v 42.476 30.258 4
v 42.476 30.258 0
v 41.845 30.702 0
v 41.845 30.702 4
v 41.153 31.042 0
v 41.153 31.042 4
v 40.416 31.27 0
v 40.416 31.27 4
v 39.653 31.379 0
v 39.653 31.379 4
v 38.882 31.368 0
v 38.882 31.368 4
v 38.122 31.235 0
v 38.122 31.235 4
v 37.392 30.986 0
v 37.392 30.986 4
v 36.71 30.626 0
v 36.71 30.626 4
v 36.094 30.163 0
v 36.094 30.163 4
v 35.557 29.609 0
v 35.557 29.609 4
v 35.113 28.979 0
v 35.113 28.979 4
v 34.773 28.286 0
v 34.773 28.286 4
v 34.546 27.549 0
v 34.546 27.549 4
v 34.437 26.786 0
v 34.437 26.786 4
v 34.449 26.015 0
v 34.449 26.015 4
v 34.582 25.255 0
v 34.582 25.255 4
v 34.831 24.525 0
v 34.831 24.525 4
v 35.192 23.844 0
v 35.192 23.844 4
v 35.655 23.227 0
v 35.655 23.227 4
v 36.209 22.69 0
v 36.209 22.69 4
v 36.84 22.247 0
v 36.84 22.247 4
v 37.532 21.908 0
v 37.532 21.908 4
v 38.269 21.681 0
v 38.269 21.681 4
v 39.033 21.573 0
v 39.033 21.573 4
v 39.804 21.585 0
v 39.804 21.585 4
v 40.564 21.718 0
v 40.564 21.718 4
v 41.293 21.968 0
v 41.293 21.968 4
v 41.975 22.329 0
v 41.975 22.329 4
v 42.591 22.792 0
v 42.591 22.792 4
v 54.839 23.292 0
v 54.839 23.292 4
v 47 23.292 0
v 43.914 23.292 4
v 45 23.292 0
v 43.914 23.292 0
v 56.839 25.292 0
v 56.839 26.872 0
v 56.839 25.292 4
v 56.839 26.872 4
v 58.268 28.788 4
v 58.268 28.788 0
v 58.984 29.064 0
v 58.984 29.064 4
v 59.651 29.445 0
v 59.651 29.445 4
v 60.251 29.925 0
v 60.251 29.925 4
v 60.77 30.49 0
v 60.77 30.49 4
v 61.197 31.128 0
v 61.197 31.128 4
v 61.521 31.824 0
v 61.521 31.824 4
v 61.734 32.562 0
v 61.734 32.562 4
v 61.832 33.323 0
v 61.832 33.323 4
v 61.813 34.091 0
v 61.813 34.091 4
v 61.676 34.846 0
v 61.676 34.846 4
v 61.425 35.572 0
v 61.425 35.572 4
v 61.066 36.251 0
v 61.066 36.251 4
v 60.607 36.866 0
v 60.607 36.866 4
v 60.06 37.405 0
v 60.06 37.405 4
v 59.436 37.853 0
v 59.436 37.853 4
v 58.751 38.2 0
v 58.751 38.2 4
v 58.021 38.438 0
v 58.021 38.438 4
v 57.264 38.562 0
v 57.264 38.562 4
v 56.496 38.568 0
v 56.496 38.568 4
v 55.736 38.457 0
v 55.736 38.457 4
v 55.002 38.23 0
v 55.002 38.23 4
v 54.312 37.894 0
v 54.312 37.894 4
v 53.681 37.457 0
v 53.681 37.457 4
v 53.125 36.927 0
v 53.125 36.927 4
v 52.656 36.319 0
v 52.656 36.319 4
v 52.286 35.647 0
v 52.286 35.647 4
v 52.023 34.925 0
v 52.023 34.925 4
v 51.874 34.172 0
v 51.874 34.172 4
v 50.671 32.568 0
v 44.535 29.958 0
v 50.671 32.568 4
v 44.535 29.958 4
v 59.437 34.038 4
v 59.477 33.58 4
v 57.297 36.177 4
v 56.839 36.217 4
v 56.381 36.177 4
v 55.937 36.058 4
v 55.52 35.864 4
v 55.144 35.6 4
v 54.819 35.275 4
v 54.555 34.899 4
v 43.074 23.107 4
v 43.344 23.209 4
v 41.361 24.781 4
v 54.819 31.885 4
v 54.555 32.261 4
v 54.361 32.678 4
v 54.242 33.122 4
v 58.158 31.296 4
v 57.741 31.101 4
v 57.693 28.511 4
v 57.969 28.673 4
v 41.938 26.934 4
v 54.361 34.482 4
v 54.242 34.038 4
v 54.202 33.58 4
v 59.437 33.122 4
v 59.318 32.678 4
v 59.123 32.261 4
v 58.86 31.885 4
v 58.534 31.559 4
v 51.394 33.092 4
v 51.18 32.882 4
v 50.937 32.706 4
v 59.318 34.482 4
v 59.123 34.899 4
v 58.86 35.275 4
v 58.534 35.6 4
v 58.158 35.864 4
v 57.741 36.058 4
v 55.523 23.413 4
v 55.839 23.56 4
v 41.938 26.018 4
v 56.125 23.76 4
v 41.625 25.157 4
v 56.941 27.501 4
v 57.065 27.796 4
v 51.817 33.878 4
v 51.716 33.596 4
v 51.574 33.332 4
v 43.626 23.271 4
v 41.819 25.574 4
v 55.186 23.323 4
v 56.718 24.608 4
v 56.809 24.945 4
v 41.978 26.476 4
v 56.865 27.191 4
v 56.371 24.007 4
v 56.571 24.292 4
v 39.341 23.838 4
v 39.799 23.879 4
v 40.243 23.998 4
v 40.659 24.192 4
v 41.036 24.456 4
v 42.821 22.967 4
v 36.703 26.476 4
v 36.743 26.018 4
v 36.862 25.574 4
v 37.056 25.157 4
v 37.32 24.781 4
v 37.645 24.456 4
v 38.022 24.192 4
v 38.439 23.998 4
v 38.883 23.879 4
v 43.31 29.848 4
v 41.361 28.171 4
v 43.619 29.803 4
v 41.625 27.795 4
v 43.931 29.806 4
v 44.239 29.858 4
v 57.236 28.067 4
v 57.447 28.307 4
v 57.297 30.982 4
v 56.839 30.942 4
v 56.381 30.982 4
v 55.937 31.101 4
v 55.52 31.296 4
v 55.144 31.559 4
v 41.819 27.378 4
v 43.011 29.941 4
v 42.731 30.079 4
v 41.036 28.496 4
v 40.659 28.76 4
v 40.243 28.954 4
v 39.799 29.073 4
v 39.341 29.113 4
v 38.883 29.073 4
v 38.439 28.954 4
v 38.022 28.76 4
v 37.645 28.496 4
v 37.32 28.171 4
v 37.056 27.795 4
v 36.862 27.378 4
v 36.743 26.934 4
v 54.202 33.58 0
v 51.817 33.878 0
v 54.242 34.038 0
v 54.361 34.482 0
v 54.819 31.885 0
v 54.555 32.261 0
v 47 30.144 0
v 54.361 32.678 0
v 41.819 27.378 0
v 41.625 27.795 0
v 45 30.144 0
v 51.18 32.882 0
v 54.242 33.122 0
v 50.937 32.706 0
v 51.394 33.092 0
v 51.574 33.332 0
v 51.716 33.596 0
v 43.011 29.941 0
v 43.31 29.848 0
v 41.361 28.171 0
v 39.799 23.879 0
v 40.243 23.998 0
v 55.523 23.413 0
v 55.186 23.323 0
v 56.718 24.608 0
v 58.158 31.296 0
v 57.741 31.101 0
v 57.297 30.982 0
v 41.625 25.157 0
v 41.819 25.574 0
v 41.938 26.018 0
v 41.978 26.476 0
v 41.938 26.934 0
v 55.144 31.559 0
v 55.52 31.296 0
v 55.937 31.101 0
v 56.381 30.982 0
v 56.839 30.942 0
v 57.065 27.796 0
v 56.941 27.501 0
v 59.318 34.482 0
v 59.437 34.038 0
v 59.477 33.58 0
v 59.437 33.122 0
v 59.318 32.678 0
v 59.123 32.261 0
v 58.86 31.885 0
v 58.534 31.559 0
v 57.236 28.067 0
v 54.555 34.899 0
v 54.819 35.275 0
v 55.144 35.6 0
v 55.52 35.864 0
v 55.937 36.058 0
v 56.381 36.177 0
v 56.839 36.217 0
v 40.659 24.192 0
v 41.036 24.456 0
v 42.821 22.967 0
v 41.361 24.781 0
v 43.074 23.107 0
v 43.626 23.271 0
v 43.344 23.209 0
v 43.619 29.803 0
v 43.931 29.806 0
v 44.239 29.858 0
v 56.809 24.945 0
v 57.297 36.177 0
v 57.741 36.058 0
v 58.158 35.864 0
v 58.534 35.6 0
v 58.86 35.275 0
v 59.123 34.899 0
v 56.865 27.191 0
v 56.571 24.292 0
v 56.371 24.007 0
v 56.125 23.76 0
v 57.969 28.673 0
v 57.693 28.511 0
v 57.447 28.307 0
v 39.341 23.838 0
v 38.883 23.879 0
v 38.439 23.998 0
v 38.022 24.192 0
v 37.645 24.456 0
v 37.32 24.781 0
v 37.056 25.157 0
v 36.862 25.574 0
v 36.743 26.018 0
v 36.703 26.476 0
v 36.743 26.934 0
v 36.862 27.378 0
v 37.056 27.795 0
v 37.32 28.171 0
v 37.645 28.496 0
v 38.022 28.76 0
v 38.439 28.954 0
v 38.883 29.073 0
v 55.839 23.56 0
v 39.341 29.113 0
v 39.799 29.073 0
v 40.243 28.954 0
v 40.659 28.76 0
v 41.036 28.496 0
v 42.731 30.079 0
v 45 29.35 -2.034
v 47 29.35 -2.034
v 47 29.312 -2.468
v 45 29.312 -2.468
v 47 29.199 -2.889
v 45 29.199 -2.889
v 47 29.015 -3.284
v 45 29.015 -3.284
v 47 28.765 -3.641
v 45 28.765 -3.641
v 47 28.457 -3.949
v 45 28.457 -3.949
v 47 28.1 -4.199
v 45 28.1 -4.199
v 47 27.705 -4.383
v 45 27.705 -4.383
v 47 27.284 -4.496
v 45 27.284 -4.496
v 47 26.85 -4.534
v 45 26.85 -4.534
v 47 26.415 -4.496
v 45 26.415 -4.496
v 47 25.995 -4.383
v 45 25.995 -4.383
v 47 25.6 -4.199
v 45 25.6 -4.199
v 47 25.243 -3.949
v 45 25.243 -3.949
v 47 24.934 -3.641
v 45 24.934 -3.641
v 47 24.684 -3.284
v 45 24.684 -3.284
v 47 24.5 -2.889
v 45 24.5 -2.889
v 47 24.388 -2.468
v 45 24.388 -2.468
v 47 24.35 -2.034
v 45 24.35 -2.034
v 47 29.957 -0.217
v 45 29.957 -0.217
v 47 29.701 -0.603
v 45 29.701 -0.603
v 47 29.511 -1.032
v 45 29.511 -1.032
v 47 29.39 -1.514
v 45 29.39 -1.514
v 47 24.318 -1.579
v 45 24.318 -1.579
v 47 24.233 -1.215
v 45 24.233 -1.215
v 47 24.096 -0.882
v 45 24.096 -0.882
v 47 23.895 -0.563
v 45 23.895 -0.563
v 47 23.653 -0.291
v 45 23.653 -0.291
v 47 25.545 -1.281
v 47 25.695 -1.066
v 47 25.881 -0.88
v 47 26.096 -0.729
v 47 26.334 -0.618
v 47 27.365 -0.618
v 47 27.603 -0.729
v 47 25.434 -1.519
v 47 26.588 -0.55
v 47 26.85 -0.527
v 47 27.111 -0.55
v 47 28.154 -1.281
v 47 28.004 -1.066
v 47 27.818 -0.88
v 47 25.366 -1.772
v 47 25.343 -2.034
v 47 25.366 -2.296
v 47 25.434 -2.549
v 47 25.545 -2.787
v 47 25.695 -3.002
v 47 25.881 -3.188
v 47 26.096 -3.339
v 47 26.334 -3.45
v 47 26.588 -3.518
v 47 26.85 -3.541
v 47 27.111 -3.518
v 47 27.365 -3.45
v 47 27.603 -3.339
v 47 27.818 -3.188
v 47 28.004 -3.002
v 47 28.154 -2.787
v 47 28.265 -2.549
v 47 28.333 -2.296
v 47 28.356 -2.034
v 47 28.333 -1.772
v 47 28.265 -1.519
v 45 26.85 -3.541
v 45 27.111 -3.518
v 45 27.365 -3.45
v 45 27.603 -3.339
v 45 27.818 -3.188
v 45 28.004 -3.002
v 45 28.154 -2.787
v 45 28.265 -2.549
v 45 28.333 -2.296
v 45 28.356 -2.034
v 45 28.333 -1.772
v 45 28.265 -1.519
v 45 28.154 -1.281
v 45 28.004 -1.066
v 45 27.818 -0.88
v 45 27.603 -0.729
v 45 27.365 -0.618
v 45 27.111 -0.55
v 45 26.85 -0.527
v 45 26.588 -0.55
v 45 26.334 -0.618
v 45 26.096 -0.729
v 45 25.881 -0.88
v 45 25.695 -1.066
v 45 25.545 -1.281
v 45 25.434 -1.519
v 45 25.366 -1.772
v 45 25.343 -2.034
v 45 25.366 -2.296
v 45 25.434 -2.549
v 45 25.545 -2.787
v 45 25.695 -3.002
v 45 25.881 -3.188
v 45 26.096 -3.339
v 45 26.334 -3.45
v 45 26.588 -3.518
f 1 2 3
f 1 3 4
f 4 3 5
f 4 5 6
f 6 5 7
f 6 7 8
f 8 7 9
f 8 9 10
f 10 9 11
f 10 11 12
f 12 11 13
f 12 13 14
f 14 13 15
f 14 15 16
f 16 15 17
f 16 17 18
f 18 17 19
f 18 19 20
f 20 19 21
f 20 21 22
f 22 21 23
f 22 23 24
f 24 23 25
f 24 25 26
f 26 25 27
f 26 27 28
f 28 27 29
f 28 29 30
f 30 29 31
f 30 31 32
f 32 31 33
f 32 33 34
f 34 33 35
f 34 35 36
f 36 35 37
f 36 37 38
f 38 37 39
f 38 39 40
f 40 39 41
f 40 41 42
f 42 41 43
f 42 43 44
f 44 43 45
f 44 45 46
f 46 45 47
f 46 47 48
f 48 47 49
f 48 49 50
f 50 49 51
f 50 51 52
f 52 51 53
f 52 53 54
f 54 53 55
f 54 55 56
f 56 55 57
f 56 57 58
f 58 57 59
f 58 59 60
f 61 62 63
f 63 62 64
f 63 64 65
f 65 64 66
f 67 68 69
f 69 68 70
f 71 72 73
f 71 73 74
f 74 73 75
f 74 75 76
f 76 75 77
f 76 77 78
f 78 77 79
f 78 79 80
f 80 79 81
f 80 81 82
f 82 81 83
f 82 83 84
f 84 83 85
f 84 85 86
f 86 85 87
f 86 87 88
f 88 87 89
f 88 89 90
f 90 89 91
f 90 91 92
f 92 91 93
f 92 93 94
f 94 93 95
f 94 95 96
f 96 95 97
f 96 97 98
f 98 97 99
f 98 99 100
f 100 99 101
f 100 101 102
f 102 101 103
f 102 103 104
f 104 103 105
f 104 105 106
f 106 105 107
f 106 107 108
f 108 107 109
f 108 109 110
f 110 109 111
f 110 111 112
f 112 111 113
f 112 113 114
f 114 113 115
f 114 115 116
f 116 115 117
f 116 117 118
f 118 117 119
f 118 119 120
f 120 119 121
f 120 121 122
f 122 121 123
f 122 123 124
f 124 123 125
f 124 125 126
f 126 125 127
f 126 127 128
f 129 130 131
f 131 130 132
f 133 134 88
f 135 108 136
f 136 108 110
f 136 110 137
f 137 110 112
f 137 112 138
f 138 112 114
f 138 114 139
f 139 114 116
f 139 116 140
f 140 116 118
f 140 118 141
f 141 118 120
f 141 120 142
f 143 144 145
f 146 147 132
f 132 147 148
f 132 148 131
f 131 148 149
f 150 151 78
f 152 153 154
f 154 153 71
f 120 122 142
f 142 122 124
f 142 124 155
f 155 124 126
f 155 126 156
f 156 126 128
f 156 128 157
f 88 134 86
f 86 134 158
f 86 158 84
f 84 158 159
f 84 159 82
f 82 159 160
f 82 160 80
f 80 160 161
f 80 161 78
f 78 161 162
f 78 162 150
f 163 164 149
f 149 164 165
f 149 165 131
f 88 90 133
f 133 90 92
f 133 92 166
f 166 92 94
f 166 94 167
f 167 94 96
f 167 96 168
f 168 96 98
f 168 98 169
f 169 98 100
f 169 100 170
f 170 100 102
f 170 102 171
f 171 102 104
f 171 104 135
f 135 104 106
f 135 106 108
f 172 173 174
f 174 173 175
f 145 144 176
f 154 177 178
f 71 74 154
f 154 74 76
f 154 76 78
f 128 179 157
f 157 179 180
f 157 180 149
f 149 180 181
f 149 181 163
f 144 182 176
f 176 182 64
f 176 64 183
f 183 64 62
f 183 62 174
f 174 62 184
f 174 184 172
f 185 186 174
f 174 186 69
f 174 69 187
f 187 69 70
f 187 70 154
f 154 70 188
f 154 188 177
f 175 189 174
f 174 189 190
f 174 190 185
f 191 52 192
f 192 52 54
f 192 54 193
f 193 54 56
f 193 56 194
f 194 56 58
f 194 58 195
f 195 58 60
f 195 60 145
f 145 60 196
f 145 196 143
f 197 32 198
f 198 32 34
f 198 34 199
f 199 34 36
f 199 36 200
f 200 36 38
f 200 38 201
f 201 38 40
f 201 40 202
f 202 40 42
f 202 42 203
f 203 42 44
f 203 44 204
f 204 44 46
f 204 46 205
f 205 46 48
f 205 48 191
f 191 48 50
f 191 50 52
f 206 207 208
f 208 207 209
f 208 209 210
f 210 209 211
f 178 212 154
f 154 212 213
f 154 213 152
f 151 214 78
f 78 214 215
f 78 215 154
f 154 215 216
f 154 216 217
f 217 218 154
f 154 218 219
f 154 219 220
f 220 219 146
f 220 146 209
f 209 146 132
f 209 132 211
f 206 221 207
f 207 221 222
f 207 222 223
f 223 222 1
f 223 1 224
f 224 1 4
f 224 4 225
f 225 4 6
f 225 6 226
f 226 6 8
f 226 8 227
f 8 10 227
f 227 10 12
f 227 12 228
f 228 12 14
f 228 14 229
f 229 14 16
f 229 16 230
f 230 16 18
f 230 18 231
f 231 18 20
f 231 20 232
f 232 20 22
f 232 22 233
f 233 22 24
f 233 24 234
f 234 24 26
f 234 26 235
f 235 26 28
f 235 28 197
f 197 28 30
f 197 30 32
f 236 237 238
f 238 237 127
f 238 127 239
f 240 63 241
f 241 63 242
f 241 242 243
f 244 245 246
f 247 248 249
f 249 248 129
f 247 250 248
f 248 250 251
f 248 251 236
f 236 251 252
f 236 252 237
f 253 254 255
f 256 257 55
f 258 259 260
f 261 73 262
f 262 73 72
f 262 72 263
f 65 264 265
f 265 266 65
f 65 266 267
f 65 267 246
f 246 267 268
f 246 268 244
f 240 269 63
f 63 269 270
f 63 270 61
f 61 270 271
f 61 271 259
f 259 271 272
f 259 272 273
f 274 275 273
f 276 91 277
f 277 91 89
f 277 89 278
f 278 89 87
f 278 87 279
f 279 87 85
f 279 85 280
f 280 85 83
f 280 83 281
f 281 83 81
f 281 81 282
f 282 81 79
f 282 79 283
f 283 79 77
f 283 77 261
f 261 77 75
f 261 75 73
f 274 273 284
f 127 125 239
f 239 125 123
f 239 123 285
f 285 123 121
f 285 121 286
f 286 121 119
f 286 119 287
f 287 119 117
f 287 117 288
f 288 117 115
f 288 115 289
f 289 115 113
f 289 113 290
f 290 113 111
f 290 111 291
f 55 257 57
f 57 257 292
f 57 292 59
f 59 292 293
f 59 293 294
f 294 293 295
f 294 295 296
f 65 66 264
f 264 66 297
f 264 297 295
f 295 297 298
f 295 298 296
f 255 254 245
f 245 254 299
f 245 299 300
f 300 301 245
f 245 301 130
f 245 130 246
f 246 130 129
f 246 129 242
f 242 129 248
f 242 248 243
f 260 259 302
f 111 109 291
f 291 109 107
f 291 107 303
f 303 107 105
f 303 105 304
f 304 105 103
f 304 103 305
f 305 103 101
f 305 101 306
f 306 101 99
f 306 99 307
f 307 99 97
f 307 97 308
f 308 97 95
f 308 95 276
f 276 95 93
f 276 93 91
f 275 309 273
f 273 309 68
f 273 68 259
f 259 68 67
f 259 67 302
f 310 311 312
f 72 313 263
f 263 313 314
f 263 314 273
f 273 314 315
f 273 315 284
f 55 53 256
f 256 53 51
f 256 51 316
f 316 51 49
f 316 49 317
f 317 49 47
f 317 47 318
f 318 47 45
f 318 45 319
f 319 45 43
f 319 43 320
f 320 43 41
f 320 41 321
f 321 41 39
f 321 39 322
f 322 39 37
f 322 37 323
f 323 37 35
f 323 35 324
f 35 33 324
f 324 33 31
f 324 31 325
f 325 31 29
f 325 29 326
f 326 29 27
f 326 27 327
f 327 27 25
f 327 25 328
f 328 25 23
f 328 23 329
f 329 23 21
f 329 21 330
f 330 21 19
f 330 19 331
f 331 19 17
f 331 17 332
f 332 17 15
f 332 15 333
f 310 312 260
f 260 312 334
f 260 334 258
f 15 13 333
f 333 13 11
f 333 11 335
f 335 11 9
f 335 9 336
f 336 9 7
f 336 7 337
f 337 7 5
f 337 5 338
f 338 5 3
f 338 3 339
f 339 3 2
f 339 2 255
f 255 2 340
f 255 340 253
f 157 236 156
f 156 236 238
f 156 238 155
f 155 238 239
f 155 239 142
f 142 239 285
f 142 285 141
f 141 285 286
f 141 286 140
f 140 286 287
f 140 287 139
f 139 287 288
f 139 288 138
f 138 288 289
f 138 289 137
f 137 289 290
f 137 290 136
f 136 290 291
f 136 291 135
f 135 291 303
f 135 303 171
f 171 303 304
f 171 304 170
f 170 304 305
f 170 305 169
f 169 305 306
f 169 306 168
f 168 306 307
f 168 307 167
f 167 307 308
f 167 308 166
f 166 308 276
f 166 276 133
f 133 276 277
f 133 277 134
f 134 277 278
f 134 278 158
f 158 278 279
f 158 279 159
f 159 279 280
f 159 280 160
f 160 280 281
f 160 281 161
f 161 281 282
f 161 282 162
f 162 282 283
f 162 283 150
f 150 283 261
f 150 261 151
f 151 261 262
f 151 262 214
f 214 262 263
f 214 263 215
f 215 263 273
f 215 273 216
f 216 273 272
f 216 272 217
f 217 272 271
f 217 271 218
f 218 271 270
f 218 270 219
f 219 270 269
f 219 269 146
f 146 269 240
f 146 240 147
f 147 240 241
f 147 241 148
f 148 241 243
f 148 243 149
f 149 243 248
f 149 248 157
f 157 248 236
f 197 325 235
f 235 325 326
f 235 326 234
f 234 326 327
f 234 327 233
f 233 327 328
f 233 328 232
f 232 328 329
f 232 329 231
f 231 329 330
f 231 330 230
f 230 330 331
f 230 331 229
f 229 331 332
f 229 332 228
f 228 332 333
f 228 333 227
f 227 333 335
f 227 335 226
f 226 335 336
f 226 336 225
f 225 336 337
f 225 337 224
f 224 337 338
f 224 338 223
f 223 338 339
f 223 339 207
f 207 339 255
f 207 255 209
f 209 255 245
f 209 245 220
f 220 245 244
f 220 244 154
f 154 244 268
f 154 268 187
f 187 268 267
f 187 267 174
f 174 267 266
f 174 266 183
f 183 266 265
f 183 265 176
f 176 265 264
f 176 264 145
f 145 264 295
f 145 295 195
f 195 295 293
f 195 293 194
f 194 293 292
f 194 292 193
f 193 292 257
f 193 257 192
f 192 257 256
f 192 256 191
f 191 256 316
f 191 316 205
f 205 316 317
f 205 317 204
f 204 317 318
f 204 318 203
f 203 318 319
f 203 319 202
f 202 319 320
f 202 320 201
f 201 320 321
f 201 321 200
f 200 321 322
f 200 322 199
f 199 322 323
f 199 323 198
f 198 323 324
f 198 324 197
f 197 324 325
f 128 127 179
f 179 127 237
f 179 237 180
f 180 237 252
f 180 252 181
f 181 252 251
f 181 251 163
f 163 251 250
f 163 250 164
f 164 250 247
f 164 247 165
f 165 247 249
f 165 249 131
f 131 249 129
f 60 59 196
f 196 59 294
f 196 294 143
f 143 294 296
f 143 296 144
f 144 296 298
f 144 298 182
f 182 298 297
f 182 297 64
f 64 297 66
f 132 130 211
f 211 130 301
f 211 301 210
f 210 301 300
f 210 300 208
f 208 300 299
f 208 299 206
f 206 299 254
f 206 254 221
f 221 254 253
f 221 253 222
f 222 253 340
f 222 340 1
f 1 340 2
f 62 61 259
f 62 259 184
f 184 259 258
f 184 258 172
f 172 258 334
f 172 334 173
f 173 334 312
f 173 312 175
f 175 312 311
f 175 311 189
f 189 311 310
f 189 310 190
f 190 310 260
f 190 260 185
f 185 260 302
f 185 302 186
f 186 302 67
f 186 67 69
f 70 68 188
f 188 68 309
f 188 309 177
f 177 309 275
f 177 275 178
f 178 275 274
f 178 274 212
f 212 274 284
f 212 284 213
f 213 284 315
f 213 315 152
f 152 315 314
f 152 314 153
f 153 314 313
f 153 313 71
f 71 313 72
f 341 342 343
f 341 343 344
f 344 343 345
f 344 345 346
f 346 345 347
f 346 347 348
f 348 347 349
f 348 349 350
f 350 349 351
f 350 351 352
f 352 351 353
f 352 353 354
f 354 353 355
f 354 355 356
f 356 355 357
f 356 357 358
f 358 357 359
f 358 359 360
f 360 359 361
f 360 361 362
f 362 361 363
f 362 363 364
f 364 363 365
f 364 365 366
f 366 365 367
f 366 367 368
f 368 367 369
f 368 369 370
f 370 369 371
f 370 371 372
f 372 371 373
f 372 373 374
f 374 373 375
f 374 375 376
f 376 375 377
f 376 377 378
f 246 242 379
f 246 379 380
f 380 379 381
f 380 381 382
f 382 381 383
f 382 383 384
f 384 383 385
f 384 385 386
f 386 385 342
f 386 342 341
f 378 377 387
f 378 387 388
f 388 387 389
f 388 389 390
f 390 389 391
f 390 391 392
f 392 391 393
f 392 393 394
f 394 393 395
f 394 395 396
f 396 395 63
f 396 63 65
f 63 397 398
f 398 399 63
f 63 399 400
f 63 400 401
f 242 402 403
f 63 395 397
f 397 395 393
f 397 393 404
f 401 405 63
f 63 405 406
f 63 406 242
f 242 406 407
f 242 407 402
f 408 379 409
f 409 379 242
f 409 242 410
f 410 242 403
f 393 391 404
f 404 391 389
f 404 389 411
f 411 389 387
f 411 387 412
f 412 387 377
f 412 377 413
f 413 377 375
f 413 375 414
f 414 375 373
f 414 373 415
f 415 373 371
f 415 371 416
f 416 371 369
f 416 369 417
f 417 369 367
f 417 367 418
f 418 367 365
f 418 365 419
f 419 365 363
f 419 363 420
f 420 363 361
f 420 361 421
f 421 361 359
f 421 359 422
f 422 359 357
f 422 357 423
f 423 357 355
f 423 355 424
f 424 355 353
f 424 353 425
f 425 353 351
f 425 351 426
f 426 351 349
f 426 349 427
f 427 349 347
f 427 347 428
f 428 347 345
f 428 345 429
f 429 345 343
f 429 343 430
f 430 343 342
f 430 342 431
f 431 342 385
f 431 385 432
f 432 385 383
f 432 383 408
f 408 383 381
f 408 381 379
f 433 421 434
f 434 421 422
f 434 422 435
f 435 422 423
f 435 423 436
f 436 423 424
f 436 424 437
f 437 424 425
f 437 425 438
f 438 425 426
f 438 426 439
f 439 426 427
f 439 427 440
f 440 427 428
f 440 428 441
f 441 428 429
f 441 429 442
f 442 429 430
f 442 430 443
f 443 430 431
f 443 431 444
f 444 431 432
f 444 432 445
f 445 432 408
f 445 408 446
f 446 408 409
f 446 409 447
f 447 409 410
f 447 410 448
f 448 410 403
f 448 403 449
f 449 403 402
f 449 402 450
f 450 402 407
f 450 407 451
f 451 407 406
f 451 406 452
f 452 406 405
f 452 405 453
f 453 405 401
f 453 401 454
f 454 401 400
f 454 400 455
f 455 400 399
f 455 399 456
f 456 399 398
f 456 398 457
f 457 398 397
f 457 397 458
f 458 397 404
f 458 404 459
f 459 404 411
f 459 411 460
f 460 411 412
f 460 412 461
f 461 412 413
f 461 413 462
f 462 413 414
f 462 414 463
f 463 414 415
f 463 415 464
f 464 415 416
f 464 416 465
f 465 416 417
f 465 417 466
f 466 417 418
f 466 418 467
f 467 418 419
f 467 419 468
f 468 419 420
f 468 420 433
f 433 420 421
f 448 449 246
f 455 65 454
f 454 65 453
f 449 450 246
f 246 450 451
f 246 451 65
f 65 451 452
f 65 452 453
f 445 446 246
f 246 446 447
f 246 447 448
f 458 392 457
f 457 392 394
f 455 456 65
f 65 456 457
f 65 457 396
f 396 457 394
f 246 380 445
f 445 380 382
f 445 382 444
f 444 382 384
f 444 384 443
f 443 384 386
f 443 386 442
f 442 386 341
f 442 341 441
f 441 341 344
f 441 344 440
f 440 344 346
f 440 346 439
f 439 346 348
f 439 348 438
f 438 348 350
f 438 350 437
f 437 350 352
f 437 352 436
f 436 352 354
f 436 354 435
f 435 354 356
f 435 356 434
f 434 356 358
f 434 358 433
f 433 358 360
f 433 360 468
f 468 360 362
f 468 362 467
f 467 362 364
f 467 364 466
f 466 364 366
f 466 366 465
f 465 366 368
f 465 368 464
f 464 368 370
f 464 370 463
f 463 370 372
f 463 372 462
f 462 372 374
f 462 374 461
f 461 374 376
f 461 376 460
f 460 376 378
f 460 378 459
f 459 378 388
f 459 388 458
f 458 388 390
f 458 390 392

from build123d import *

# Parameters (mm, degrees)
BOSS_EXTRUDE3_DEPTH = 4
HOLE3_D             = 5.275
HOLE3_DEPTH         = 4
FILLET3_R           = 2
SKETCH25_R          = 1.506522666
BOSS_EXTRUDE4_DEPTH = 2


with BuildPart() as part:
    # Sketch17 → Boss-Extrude3 (new body)
    with BuildSketch(Plane(origin=(0, 0, 0), x_dir=(-1, 0, 0), z_dir=(0, 0, -1))):
        with BuildLine():
            Line((-43.273147001, 29.420937259), (-51.8645252, 33.076041142))
            ThreePointArc((-51.8645252, 33.076041142), (-60.191727201, 37.289326312), (-56.839071038, 28.579919803))
            Line((-56.839071038, 28.579919803), (-56.839071038, 23.292312115))
            Line((-56.839071038, 23.292312115), (-43.08257304, 23.292312115))
            ThreePointArc((-43.08257304, 23.292312115), (-34.429928081, 26.628647856), (-43.273147001, 29.420937259))
        make_face()
    extrude(amount=-BOSS_EXTRUDE3_DEPTH)

    # Hole3
    with Locations(Plane(origin=(0, 0, 0), x_dir=(-1, 0, 0), z_dir=(0, 0, -1))):
        with Locations((-39.340592987, 26.475947236), (-56.839071038, 33.579919803)):
            Hole(HOLE3_D / 2, depth=HOLE3_DEPTH)

    # Fillet3
    fillet3_edges = [part.edges().sort_by_distance(p)[0] for p in [
        (43.08257304, 23.292312115, 2),
        (56.839071038, 23.292312115, 2),
        (56.839071038, 28.579919803, 2),
        (51.8645252, 33.076041142, 2),
        (43.273147001, 29.420937259, 2),
    ]]
    fillet(fillet3_edges, radius=FILLET3_R)

    # Sketch25 → Boss-Extrude4 (add)
    with BuildSketch(Plane(origin=(47, 0, 0), x_dir=(0, 0, -1), z_dir=(1, 0, 0))):
        with BuildLine():
            Line((0, 23.292312115), (0, 30.144105031))
            add(Edge.make_bspline(
                [(2.034016737, 29.349553115), (0.844292257, 29.348828202), (0, 30.144105031)],
                knots=[0, 0, 0, 1, 1, 1], degree=2))
            ThreePointArc((2.034016737, 29.349553115), (4.534016737, 26.849553115), (2.034016737, 24.349553115))
            add(Edge.make_bspline(
                [(2.034016737, 24.349553115), (0.725821756, 24.359363318), (0, 23.292312115)],
                knots=[0, 0, 0, 1, 1, 1], degree=2))
        make_face()
        with Locations((2.034016737, 26.849553115)):
            Circle(SKETCH25_R, mode=Mode.SUBTRACT)
    extrude(amount=-BOSS_EXTRUDE4_DEPTH)


solid = part.part
